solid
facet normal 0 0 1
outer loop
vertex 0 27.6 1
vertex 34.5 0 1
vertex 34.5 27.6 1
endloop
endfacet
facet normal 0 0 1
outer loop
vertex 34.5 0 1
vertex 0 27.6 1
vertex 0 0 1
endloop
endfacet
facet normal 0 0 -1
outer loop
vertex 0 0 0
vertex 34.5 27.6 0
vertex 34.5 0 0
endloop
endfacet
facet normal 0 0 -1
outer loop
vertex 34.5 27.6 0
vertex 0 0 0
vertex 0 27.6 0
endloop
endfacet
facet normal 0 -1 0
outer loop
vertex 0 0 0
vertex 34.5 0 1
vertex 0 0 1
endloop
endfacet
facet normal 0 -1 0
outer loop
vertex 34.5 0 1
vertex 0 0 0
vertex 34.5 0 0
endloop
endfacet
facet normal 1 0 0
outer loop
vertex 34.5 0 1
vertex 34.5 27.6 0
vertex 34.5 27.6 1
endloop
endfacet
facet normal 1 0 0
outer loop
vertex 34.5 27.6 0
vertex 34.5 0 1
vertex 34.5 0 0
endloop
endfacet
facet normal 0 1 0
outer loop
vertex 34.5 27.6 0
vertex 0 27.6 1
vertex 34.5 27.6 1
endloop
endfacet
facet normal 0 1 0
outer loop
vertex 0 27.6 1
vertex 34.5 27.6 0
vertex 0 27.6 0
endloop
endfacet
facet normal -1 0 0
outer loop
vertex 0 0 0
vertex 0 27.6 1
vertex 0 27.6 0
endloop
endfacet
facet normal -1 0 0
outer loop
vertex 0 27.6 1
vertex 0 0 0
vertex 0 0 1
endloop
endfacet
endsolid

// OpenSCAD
/*
 * PROMPT: H0 scale (1:87) single-car garage back wall panel, 34.5 mm wide x 27.6 mm tall x 1 mm thick, plain with no openings.
 */

$fn = 32;

panel_t = 1.0;

bld_w = 34.5;
bld_h = 27.6;

module wall_back() {
    cube([bld_w, bld_h, panel_t]);
}

wall_back();
